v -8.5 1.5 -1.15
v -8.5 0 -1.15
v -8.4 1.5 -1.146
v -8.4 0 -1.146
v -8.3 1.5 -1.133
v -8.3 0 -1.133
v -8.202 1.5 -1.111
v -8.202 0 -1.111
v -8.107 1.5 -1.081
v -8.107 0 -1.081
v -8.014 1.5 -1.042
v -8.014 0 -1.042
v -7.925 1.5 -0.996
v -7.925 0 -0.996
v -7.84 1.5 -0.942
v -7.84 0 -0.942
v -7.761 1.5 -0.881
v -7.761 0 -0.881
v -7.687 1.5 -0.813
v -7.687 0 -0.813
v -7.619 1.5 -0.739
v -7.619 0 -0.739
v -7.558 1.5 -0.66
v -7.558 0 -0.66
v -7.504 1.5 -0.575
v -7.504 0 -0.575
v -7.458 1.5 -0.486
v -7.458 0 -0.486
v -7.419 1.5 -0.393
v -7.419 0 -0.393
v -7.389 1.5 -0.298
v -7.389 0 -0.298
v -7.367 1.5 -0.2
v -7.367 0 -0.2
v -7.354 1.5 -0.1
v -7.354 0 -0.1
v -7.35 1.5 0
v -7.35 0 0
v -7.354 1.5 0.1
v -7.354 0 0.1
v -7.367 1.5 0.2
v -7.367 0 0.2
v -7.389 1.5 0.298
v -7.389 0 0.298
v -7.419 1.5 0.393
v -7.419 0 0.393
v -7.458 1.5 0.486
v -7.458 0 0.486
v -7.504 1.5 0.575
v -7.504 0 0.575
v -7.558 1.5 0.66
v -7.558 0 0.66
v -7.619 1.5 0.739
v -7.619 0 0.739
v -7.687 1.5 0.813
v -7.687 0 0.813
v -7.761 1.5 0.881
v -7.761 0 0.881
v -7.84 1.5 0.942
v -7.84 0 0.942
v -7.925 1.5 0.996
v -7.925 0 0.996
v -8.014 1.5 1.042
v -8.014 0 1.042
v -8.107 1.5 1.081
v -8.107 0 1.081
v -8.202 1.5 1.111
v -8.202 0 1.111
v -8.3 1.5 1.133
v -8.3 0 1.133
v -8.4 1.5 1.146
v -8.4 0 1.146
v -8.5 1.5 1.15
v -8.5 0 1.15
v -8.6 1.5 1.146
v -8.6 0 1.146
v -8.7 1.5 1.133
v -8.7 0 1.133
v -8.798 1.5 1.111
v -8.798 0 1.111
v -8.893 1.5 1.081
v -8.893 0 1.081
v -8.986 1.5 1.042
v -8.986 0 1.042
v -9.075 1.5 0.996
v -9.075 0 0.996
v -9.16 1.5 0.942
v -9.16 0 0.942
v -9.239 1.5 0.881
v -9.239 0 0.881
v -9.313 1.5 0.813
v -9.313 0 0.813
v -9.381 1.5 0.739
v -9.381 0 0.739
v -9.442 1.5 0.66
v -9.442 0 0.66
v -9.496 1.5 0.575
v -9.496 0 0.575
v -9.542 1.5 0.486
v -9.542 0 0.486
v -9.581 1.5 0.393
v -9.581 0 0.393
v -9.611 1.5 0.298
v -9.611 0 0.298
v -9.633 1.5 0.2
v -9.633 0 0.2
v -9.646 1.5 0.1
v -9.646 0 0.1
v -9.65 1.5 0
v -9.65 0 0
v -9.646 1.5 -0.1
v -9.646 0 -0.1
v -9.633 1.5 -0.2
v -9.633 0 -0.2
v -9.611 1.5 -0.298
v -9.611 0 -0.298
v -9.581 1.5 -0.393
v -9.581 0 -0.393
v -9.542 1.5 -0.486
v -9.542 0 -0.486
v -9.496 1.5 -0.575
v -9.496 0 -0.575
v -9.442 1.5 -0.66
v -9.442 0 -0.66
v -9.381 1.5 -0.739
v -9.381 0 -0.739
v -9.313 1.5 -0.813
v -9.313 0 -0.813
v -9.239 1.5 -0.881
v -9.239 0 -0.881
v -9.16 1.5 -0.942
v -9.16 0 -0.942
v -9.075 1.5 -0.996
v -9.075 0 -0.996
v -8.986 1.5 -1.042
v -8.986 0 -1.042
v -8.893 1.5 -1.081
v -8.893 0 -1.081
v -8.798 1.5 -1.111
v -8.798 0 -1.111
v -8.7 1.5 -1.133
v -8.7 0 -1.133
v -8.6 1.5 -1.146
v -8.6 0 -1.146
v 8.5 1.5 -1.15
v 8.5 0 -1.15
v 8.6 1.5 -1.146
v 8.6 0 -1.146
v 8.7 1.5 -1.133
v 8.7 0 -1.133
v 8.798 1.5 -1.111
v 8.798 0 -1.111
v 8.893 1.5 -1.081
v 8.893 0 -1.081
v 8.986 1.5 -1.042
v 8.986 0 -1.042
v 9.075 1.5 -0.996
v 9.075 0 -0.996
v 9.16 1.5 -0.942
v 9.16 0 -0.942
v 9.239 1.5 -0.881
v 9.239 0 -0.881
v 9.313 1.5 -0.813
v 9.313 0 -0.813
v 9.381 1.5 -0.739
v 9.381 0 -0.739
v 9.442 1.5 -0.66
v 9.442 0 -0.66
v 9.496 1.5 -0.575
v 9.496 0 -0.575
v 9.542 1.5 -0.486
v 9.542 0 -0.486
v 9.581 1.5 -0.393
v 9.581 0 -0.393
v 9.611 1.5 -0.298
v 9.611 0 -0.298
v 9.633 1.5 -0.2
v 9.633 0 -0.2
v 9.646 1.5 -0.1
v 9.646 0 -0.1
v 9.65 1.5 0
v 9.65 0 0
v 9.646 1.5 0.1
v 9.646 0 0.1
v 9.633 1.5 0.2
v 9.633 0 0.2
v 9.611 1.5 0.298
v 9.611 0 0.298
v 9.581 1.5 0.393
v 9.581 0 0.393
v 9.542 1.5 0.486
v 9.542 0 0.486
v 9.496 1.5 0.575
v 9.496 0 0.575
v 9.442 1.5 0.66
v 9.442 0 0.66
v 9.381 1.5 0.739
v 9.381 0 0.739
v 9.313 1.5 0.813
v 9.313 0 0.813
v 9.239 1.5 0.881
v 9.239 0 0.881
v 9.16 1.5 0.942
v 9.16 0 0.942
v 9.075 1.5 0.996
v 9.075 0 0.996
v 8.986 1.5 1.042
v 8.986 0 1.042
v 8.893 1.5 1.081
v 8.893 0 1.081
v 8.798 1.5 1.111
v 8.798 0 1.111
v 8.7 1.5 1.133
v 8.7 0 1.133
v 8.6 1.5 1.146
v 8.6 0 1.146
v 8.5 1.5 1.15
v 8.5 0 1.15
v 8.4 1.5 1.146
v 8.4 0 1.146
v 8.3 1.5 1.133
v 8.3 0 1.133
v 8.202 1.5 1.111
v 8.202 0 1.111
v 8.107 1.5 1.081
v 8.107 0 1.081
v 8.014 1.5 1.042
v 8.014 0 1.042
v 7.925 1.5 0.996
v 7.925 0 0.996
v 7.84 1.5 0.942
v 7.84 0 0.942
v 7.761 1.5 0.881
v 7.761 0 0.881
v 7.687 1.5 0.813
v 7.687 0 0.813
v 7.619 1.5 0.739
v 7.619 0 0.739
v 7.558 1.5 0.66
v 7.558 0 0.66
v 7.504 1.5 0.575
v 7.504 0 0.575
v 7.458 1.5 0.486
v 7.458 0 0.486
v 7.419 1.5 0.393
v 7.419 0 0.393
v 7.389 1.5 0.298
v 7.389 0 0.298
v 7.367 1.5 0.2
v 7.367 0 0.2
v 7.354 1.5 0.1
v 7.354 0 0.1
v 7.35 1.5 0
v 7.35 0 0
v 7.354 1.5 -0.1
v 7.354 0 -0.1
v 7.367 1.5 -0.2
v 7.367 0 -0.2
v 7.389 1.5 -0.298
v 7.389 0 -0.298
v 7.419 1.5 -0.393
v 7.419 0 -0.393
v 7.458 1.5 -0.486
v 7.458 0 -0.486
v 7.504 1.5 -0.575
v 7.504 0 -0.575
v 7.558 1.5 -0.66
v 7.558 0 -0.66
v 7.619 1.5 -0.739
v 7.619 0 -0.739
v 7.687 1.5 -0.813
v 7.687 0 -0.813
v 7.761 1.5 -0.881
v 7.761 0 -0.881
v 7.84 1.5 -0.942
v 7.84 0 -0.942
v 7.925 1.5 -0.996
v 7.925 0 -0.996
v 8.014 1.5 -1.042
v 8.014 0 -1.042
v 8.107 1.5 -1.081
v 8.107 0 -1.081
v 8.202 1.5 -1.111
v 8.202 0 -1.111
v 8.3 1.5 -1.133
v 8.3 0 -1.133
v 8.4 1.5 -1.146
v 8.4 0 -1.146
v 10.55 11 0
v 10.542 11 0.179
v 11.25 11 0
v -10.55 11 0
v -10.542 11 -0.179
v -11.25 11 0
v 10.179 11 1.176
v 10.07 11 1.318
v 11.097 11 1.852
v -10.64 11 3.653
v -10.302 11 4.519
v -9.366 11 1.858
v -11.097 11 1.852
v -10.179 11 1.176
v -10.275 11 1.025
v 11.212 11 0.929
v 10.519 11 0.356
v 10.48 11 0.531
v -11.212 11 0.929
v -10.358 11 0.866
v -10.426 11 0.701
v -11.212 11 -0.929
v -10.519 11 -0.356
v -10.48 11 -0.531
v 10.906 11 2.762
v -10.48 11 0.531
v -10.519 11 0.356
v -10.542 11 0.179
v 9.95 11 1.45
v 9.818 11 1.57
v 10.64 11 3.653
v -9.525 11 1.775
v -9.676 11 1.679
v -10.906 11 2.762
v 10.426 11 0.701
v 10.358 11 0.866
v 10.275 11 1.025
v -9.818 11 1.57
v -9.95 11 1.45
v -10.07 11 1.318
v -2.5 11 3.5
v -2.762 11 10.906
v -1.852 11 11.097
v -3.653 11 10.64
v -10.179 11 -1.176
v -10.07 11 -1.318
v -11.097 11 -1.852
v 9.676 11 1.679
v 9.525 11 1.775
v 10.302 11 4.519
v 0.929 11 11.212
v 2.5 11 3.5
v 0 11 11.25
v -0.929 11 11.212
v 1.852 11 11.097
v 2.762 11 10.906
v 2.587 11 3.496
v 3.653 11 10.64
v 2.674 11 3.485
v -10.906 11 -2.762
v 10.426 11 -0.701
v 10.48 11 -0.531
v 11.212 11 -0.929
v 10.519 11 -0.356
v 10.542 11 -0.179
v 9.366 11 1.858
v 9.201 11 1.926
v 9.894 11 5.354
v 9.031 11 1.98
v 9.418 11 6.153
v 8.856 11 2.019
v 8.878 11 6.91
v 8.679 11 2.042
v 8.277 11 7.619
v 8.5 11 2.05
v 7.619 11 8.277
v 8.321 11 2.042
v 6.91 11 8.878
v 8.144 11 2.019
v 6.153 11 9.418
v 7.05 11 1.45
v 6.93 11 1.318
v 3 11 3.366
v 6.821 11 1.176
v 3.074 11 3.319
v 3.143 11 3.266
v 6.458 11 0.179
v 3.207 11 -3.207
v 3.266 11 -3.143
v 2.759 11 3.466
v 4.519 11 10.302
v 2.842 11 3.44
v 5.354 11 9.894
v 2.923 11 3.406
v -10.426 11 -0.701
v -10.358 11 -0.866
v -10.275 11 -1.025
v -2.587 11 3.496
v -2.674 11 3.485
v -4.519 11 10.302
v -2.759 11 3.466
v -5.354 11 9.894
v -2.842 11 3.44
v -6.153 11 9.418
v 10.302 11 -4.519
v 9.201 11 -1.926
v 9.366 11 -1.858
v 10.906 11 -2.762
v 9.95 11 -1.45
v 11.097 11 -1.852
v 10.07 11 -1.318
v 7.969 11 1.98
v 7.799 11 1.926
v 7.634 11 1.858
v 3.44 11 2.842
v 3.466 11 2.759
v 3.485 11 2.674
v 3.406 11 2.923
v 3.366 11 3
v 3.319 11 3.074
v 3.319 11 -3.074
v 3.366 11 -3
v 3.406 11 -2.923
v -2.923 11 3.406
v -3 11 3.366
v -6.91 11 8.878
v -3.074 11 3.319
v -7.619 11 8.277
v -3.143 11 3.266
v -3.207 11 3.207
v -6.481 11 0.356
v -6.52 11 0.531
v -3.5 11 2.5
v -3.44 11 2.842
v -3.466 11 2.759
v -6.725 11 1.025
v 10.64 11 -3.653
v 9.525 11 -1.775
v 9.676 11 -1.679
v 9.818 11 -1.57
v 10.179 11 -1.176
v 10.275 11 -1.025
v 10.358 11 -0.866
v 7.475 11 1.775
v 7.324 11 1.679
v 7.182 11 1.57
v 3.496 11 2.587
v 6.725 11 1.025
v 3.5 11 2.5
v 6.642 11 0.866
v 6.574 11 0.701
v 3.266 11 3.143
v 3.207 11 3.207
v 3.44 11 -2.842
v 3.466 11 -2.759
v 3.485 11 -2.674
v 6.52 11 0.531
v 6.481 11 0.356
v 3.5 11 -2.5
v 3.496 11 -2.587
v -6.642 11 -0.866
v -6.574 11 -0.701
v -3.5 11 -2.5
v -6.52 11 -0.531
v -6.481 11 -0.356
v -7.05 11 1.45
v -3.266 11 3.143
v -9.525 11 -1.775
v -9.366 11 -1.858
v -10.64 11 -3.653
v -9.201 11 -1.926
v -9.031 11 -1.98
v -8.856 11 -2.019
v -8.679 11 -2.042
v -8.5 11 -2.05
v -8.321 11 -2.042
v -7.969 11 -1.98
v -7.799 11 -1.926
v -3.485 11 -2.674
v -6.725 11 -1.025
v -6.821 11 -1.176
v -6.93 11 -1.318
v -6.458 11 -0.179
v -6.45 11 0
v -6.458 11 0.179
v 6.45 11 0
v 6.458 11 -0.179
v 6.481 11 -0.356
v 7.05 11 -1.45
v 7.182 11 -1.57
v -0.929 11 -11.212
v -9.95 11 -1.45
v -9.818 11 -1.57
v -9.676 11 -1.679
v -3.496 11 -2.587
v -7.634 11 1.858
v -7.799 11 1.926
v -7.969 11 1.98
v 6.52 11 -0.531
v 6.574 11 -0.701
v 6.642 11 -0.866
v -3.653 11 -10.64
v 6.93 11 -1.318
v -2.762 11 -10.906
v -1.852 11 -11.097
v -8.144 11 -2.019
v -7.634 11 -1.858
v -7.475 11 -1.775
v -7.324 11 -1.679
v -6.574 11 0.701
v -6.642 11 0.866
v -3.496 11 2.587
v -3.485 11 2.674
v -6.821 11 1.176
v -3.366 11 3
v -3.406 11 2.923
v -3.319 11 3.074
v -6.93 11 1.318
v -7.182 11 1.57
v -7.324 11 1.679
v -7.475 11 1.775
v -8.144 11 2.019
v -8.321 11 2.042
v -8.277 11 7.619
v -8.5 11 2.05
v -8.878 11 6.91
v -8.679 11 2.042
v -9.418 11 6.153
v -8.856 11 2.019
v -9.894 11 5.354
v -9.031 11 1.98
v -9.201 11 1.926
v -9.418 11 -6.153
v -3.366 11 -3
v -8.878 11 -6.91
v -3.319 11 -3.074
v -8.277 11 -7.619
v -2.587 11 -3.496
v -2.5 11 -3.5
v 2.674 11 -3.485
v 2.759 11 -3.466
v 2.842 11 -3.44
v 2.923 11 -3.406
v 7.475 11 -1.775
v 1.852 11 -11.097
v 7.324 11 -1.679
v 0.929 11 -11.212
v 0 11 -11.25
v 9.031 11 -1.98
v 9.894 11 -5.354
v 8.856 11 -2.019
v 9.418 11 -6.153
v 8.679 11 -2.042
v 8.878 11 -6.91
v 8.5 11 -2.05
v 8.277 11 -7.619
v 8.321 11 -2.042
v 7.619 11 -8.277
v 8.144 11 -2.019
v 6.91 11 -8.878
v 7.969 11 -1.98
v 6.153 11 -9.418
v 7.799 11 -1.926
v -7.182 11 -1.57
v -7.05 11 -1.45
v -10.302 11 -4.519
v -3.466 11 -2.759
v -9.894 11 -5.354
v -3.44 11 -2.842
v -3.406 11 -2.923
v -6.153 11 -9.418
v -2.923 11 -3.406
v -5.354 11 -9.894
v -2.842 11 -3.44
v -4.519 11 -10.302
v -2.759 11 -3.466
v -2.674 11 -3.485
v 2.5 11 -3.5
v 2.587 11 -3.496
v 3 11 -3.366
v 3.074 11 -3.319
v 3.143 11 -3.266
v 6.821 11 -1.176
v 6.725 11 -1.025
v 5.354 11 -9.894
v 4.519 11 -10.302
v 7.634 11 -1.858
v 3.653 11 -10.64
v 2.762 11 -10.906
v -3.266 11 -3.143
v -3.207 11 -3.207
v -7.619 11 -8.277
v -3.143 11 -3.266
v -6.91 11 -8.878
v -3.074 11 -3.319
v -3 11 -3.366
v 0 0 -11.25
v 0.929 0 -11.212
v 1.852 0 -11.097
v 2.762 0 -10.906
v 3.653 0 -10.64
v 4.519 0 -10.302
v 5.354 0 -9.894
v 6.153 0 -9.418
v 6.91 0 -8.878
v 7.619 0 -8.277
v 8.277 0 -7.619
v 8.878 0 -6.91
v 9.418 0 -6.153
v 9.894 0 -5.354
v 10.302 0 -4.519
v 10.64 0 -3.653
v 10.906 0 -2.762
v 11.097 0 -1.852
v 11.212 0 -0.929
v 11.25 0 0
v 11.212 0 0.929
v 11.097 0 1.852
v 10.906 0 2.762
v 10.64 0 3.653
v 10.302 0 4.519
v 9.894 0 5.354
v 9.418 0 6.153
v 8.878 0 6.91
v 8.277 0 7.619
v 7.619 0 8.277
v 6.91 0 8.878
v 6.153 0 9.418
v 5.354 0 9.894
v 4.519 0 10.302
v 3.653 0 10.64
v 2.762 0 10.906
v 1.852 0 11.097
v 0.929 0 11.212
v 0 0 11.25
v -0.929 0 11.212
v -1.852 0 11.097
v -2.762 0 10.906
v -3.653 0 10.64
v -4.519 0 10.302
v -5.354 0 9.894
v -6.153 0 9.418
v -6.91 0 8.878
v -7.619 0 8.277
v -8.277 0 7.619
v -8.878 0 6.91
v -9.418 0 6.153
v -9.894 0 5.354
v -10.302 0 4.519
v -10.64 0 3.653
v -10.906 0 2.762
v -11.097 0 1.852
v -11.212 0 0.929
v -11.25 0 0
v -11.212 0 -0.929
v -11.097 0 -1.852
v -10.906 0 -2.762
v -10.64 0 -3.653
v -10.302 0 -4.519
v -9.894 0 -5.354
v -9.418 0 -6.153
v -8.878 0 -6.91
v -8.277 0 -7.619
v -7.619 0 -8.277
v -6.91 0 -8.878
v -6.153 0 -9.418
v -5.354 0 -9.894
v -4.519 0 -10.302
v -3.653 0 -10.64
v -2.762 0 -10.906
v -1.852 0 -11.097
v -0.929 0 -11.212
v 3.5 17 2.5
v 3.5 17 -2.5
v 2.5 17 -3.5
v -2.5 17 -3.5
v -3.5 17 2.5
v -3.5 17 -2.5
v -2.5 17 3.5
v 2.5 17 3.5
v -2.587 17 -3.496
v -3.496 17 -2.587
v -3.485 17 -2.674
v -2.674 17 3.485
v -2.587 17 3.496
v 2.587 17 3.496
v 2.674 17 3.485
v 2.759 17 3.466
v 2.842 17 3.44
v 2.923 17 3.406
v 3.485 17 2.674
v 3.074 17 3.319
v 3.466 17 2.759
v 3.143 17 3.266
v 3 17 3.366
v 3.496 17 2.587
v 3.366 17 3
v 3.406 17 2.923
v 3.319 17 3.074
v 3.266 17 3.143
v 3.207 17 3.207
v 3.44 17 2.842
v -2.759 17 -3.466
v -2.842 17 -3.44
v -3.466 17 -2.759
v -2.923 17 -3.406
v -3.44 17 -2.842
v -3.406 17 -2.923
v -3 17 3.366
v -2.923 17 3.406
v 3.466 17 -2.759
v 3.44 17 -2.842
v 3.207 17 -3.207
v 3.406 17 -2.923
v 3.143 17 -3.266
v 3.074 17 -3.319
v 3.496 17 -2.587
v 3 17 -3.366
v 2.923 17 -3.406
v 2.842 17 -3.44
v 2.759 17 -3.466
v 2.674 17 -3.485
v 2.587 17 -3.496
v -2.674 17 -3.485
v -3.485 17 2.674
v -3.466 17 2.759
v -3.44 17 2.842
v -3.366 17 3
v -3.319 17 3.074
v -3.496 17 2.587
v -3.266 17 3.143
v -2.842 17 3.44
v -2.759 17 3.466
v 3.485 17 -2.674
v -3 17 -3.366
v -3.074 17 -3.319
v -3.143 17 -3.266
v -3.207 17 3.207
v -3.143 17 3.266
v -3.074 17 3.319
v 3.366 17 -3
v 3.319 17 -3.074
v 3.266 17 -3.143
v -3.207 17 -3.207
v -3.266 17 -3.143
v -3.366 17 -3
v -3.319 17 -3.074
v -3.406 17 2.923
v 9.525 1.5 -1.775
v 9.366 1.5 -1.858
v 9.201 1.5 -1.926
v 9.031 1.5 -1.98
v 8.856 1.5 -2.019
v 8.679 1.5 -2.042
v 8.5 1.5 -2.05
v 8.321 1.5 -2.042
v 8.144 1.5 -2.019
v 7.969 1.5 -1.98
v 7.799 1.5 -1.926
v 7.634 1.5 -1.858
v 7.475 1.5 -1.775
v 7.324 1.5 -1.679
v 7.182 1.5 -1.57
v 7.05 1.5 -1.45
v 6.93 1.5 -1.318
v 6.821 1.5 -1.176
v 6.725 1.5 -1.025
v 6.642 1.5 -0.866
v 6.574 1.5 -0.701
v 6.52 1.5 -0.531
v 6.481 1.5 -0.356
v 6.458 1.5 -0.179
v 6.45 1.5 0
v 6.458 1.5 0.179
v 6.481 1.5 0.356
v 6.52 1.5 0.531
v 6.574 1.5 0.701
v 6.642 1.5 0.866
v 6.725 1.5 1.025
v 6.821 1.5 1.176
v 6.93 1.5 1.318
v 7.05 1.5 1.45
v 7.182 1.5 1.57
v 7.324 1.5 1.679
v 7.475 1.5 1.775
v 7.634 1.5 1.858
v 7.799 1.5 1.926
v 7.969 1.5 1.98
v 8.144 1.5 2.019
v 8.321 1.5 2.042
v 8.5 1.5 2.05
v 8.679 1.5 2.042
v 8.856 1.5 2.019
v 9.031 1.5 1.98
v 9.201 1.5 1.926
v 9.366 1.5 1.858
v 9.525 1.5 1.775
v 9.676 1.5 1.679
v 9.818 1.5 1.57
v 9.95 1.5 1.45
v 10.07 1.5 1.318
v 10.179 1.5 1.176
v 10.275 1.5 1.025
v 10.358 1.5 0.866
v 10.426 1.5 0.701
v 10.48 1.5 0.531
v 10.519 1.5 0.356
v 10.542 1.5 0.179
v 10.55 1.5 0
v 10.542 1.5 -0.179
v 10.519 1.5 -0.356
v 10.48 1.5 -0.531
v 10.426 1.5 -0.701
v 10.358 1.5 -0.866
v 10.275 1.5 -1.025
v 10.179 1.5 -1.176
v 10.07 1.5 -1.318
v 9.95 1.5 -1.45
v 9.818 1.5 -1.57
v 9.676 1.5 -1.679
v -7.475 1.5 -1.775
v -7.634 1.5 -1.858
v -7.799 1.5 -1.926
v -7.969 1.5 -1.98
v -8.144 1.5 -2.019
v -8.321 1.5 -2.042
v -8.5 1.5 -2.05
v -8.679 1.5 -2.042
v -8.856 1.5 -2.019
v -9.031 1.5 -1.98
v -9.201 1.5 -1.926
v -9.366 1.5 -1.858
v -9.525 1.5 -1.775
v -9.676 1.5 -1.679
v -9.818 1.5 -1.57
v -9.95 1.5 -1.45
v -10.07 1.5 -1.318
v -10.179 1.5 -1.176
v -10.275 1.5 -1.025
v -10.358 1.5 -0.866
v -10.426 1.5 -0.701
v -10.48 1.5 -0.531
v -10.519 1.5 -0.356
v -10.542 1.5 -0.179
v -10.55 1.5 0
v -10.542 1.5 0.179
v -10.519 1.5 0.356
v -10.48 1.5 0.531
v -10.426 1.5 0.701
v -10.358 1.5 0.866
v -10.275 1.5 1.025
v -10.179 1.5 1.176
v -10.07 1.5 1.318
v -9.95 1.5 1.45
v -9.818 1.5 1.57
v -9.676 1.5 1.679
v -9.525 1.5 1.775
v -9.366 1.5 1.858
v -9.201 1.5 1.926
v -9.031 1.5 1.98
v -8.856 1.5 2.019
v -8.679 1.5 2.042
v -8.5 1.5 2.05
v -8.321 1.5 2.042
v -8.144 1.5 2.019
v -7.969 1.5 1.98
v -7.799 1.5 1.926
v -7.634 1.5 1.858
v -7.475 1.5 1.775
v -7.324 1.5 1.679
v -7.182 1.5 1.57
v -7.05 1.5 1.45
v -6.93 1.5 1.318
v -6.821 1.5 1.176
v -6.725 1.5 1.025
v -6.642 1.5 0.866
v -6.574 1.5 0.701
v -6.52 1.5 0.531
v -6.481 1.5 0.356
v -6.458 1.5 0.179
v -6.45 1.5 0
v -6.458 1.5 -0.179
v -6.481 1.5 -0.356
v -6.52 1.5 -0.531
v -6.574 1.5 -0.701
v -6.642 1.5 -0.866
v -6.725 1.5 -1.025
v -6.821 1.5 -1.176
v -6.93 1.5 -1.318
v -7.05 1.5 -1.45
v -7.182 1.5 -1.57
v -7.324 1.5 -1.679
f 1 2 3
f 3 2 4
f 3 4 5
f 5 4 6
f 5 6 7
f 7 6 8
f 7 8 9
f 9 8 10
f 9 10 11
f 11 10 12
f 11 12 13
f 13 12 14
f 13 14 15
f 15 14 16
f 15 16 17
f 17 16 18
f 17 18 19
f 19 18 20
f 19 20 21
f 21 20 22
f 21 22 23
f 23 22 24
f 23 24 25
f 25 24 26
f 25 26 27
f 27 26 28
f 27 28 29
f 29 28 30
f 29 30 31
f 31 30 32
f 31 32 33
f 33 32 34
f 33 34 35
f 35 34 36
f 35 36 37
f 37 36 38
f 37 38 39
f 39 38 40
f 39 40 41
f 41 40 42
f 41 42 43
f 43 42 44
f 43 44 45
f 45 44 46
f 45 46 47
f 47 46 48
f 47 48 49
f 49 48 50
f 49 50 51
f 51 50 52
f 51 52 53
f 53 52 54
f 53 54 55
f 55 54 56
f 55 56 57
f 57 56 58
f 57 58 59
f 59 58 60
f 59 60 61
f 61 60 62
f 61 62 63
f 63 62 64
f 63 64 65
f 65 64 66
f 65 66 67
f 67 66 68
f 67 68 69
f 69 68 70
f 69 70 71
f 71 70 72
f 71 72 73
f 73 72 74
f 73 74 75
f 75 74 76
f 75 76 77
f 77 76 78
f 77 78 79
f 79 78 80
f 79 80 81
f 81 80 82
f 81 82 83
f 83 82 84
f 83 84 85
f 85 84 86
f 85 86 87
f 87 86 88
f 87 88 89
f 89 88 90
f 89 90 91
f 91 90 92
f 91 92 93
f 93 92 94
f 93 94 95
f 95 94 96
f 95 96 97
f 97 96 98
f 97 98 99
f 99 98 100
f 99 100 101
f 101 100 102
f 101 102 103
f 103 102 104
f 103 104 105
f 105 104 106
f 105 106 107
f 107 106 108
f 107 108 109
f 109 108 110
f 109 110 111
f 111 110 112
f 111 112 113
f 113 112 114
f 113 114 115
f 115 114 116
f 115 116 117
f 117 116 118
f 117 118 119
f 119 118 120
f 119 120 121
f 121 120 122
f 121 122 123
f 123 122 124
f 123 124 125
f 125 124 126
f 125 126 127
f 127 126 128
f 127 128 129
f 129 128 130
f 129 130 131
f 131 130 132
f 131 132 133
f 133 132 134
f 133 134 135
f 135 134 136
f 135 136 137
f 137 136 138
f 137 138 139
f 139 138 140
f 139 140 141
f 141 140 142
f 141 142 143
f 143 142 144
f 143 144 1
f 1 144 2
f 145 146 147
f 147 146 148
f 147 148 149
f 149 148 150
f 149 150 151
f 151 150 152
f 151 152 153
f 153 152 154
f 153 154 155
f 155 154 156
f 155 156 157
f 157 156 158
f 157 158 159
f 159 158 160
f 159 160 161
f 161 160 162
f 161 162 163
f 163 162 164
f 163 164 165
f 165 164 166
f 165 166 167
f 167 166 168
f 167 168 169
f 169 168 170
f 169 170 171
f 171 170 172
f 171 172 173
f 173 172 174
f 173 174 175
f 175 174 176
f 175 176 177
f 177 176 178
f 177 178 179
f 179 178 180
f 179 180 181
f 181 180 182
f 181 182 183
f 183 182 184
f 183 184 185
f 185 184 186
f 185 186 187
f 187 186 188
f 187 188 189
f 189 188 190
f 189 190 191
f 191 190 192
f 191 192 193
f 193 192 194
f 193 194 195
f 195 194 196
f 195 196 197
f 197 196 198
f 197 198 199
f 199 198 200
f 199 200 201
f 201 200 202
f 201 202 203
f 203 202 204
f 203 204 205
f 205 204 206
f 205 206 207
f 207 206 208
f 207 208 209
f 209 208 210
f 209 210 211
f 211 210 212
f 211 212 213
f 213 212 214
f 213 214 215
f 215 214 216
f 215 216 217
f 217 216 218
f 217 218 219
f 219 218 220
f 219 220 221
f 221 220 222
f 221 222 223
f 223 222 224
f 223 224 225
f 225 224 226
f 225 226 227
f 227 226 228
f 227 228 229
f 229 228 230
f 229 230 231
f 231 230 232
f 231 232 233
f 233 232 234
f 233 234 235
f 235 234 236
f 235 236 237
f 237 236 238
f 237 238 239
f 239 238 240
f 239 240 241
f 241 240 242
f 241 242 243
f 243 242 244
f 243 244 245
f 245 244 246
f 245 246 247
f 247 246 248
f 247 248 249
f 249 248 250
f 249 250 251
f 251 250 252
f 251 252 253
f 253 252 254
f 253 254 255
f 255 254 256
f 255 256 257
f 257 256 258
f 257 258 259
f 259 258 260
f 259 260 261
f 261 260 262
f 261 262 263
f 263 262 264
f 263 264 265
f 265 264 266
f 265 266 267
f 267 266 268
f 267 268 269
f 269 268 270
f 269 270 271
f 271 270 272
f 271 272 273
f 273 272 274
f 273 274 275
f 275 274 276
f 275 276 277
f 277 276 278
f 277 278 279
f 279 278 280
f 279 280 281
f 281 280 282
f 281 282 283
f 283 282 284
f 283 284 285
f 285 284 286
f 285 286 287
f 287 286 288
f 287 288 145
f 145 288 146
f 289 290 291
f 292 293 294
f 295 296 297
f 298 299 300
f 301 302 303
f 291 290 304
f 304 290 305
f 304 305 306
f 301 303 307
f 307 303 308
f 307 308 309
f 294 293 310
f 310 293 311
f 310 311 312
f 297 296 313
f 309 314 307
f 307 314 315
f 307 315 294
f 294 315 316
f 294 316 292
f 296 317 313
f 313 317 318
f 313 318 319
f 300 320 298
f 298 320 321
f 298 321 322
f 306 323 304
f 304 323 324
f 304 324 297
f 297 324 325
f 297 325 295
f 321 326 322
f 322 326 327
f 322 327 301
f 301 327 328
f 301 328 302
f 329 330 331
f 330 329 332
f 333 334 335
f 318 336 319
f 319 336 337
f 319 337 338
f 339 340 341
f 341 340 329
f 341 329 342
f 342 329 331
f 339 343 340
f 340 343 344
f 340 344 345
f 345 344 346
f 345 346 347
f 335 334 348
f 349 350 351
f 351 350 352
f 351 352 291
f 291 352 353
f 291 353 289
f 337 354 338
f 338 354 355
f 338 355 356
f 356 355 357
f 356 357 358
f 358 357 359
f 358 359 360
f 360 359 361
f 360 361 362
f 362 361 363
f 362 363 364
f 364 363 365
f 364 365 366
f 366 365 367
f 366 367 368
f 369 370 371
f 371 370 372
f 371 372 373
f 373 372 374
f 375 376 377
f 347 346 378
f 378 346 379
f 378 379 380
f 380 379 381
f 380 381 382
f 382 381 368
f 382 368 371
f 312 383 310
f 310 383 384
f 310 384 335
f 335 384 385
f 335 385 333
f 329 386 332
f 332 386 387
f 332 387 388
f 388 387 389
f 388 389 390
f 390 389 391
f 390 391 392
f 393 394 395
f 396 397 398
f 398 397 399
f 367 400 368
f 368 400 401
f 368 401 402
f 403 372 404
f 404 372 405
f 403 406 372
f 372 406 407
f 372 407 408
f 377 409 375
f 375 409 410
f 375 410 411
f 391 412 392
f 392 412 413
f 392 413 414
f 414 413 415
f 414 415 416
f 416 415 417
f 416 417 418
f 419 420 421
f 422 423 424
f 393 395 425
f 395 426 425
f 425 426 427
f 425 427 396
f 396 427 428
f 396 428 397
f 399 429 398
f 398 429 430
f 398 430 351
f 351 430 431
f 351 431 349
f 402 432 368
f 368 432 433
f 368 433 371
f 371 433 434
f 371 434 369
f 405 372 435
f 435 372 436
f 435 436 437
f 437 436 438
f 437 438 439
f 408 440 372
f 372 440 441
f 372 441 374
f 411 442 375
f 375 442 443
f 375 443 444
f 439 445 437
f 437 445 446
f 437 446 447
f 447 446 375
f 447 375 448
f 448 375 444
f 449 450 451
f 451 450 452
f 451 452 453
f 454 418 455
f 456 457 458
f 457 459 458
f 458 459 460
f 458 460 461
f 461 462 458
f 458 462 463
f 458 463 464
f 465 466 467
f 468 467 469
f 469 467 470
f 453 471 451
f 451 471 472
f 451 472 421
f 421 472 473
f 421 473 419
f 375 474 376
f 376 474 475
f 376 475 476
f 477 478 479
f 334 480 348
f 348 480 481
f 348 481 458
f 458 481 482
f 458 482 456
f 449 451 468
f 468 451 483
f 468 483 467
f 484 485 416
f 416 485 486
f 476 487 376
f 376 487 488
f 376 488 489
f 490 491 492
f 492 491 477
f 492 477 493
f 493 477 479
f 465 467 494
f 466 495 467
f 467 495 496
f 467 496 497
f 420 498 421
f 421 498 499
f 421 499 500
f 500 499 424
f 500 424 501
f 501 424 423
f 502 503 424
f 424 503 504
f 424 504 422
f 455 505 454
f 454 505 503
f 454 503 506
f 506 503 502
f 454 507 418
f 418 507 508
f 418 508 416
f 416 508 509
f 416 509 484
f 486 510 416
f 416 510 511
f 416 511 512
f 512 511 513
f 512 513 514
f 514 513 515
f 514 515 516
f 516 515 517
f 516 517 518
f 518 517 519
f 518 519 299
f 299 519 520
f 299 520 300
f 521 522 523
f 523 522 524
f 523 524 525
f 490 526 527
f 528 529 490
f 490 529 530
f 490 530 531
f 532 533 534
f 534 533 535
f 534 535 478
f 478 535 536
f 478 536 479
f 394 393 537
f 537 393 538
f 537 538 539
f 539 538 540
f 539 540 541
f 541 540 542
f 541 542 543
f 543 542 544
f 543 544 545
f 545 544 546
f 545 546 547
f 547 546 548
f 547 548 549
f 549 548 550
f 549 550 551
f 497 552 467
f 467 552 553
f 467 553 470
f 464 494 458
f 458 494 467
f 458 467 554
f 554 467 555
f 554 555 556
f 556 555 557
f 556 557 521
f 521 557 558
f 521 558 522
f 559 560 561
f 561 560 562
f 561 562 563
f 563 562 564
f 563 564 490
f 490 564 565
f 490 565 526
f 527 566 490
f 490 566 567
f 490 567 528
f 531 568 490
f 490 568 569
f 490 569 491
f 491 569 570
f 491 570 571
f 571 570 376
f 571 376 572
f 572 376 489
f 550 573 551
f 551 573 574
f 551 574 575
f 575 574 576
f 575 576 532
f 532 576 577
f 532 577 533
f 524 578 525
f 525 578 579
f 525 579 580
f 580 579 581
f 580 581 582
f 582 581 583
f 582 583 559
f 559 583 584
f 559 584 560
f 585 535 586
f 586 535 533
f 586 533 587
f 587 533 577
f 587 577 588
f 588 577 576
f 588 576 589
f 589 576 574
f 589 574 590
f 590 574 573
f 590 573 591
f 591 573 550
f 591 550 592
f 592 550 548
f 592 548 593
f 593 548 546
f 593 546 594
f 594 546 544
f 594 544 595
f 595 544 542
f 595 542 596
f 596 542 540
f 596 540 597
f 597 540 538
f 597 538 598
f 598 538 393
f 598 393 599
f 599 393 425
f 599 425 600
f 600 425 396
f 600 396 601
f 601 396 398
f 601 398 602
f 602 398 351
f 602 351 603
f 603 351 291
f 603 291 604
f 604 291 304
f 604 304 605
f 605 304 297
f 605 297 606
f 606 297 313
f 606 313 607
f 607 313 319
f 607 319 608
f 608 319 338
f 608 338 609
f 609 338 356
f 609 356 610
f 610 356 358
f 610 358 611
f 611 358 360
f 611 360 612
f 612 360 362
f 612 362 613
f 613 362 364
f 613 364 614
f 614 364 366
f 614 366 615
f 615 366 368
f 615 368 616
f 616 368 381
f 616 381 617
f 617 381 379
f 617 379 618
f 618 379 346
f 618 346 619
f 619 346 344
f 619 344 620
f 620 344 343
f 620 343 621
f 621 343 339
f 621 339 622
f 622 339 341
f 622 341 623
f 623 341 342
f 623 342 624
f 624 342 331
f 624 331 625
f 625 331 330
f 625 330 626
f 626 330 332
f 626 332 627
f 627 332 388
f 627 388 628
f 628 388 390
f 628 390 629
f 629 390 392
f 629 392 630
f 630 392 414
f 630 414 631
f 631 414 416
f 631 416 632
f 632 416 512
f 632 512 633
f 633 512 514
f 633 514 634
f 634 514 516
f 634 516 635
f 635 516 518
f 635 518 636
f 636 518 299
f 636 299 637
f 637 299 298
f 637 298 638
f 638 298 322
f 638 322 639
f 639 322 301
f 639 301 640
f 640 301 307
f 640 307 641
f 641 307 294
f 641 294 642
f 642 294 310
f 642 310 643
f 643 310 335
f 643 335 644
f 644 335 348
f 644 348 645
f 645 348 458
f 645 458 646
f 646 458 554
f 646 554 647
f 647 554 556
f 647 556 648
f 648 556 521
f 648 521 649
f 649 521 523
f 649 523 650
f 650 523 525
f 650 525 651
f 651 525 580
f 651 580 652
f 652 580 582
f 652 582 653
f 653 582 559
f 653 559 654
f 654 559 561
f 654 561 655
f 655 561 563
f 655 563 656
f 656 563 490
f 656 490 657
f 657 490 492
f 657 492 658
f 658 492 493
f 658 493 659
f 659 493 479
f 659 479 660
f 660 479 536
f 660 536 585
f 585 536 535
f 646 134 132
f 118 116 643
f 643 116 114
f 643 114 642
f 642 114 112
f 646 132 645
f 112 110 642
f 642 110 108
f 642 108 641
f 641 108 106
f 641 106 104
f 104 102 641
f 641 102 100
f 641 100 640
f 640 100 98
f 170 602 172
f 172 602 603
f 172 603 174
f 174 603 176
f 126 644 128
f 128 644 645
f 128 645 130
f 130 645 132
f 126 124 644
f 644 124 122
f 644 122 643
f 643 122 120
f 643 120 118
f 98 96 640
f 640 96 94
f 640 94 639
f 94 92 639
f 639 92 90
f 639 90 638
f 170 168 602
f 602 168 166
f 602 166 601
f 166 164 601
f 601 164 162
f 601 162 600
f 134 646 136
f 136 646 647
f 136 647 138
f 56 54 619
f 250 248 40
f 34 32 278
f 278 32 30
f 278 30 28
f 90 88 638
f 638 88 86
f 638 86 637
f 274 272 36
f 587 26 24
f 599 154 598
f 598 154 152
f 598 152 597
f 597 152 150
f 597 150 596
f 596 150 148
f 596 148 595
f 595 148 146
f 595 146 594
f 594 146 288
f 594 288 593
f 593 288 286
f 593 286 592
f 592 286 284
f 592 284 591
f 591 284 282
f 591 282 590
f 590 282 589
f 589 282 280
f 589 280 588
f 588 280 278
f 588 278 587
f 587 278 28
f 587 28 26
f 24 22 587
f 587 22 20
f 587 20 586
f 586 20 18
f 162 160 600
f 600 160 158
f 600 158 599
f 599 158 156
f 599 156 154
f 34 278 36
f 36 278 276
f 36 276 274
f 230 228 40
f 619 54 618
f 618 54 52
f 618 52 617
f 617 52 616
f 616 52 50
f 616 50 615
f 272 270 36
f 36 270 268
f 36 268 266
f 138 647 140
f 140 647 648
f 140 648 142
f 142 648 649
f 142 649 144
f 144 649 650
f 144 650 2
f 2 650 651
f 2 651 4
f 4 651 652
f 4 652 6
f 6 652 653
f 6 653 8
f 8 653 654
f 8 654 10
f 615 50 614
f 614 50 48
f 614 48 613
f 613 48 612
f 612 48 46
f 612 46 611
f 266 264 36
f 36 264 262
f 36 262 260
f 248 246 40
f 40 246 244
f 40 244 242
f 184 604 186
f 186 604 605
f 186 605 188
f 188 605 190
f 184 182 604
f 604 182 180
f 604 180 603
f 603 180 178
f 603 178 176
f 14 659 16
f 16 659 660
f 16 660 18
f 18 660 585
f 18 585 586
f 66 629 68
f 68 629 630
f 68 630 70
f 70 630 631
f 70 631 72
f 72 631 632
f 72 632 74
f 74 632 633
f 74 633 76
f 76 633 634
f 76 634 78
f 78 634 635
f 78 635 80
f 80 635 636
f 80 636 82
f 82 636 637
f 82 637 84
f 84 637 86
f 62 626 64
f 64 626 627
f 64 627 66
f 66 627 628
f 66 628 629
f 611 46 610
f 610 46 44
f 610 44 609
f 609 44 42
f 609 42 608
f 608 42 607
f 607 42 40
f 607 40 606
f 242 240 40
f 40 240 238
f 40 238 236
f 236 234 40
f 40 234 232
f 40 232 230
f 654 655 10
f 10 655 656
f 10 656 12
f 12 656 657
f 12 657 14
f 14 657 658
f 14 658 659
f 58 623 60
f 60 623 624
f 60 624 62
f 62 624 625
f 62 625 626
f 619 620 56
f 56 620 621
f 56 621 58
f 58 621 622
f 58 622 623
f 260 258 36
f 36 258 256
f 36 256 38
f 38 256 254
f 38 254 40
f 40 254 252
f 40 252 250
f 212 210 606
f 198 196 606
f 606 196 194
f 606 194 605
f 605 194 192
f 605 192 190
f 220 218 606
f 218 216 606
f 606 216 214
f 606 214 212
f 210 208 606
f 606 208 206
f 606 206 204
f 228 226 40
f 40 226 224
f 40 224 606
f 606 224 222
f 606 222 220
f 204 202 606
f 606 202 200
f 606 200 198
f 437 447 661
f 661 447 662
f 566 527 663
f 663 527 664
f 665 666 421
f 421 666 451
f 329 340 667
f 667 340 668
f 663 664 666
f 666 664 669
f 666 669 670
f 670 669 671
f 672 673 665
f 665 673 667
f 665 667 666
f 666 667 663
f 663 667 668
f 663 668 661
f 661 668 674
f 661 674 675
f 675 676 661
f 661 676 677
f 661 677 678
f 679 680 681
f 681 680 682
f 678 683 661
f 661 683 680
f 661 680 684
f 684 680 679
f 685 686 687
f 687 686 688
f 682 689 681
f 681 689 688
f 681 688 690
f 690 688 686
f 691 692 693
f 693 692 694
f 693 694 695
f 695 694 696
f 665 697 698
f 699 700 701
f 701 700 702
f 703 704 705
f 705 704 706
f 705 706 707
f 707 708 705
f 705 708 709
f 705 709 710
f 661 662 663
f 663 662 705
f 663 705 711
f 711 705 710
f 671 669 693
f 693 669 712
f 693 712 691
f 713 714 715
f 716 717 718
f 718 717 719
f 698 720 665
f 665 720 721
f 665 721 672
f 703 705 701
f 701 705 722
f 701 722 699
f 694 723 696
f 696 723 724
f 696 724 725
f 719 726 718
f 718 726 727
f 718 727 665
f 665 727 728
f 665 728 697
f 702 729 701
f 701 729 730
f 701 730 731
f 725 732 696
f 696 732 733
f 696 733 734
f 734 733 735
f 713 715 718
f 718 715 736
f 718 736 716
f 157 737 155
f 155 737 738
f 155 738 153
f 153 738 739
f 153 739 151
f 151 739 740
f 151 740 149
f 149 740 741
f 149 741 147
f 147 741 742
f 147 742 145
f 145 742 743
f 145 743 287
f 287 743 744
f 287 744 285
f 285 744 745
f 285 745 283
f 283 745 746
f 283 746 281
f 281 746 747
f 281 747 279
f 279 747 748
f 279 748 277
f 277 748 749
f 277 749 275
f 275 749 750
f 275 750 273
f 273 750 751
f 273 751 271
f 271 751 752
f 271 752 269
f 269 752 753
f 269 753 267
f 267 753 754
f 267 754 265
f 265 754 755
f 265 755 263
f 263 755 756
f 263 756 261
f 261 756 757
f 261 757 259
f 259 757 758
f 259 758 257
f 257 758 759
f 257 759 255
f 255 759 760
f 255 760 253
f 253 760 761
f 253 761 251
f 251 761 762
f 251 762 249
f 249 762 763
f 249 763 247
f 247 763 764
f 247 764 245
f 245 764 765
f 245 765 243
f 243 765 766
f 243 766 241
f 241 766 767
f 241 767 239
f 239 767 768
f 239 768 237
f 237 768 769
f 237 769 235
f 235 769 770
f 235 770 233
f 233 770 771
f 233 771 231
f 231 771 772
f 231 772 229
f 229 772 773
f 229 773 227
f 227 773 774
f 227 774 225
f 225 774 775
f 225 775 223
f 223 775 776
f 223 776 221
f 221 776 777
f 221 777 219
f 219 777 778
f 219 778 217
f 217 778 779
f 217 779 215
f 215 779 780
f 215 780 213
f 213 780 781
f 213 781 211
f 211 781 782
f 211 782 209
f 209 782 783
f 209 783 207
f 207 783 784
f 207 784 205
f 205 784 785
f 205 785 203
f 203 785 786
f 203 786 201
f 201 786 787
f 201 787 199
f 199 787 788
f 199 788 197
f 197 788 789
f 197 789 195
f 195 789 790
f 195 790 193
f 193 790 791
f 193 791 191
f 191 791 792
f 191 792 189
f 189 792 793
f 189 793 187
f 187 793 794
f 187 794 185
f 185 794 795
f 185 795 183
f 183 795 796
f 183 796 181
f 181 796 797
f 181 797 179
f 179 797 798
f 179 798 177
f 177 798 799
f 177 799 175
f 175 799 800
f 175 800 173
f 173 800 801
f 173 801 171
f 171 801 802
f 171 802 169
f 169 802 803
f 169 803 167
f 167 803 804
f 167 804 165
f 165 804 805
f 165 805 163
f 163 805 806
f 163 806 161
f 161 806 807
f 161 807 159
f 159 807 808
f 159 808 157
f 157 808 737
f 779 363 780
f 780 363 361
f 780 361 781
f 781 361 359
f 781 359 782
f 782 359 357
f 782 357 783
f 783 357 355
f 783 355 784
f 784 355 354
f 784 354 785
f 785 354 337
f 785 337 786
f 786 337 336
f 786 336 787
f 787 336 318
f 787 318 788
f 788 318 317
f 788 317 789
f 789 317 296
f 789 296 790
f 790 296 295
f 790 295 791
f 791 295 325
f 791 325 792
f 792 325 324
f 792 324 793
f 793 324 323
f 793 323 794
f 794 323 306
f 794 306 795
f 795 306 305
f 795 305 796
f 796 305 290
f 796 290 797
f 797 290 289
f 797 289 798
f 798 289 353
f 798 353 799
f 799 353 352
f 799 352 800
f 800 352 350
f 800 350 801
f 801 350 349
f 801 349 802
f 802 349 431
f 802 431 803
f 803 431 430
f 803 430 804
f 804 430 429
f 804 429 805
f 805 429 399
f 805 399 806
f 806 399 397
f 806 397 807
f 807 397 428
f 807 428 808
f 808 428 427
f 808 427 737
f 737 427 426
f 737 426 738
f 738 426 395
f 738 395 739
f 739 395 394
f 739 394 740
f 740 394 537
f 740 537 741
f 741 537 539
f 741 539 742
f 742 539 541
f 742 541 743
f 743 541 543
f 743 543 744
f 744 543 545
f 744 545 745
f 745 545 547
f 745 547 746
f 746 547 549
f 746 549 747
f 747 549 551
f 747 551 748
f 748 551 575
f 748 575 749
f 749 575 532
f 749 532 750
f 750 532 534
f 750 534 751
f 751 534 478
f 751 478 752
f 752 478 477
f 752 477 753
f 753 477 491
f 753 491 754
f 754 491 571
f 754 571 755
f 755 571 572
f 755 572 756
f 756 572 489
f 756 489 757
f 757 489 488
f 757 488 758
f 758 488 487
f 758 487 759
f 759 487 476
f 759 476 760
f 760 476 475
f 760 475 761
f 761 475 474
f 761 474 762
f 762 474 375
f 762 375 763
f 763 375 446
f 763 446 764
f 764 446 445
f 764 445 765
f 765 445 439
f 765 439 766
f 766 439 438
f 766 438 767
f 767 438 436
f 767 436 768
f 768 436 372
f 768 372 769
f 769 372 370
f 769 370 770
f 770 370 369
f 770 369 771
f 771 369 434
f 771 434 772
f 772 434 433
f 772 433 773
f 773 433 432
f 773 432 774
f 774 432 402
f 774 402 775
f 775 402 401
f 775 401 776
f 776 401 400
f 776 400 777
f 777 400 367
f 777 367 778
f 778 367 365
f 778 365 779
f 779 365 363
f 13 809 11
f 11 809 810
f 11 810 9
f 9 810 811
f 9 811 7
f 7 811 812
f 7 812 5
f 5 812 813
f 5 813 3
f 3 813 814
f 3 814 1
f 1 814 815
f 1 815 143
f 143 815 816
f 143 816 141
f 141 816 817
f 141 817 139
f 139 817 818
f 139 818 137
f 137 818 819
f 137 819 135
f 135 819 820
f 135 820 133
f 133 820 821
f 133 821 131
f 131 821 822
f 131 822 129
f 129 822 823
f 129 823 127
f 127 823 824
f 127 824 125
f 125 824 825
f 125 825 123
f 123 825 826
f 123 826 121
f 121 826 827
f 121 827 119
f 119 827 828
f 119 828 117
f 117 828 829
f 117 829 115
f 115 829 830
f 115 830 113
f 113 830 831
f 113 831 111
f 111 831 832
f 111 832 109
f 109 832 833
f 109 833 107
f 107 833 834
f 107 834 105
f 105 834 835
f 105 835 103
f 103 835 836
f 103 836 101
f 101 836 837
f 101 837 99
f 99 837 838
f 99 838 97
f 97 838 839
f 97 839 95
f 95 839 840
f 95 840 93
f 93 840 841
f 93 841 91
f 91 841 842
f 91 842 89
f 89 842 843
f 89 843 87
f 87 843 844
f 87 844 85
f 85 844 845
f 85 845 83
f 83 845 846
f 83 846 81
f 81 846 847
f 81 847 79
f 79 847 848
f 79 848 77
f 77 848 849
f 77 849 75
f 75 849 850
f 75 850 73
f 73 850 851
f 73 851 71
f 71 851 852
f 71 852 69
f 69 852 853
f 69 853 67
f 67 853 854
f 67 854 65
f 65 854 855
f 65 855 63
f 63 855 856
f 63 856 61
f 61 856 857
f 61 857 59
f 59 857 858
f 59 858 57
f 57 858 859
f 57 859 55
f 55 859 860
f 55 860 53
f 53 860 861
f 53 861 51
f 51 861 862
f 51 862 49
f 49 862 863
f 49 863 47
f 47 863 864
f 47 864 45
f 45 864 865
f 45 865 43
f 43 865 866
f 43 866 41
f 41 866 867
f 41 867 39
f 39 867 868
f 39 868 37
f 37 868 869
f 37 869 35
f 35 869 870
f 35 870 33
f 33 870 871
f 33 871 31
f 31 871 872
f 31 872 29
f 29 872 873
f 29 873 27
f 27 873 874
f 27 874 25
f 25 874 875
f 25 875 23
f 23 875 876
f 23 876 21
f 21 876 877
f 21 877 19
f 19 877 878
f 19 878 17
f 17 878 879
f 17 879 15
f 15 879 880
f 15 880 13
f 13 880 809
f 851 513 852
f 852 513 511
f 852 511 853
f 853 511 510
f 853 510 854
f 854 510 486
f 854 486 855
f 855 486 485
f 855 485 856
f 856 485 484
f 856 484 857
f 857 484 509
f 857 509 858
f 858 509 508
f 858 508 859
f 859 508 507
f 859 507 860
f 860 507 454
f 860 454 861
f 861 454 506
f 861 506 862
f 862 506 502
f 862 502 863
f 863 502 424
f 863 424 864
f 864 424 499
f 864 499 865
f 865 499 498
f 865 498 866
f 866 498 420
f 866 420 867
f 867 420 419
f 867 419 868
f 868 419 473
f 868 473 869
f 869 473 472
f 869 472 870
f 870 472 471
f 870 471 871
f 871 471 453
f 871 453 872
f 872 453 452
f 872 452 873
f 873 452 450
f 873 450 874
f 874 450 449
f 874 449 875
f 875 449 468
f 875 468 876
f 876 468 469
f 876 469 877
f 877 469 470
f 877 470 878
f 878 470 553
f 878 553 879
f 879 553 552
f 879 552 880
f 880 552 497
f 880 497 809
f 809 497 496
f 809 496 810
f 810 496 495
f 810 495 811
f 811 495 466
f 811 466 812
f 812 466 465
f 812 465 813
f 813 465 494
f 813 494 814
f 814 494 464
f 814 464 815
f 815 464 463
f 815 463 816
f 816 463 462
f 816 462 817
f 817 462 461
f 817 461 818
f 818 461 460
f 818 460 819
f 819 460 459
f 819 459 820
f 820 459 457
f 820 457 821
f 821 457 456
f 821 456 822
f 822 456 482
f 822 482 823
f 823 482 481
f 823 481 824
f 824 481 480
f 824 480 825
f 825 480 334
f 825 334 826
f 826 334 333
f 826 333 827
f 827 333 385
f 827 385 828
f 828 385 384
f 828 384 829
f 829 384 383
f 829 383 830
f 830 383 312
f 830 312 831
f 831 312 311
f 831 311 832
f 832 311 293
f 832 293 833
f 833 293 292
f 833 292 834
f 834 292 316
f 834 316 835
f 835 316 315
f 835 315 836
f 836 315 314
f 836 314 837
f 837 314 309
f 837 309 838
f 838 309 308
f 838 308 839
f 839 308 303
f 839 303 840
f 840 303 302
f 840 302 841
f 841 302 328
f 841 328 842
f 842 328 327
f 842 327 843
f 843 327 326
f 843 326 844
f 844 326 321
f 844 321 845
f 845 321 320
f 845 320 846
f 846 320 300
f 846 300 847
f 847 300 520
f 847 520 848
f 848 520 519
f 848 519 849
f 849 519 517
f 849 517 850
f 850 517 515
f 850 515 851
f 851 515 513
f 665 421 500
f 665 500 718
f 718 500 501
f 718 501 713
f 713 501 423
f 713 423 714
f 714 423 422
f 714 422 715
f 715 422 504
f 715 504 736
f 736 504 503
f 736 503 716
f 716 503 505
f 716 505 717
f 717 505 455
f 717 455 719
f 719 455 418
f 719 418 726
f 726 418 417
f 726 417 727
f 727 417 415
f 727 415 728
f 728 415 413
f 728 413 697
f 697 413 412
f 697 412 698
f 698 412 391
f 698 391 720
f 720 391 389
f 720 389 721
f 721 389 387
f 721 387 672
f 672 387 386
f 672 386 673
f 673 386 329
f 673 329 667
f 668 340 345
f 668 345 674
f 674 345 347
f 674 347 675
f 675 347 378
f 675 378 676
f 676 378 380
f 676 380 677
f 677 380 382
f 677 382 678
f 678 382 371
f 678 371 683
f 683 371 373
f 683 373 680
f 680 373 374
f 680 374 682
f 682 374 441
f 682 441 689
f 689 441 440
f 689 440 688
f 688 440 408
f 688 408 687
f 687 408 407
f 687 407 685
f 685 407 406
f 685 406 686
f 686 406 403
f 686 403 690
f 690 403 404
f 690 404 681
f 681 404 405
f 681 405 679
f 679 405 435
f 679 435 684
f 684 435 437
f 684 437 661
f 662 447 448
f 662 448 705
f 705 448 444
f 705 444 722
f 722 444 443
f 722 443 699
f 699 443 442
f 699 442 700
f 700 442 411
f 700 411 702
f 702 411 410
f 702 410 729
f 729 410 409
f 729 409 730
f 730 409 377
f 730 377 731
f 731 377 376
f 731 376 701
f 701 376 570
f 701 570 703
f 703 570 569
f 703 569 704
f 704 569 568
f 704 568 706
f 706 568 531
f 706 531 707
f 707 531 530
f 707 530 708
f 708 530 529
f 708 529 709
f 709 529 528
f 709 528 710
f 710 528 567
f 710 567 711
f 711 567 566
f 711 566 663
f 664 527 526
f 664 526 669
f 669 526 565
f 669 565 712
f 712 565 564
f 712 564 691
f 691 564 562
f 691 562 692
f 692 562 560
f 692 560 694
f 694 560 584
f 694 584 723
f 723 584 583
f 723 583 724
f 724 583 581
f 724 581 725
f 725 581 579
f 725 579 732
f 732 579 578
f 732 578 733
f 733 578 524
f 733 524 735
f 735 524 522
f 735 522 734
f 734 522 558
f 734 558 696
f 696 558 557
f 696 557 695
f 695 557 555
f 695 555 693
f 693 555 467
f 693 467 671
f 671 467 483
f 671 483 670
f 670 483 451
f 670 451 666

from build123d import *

# Parameters (mm, degrees)
SKETCH_1_R          = 11.25
EXTRUDE_1_DEPTH     = 11
SKETCH_2_R          = 1.15
CUT_EXTRUDE_1_DEPTH = 20.342311134
SKETCH_4_W          = 7
SKETCH_4_H          = 7
EXTRUDE_3_DEPTH     = 6
SKETCH_5_R          = 2.05
CUT_EXTRUDE_2_DEPTH = 9.5
FILLET_1_R          = 1


with BuildPart() as part:
    # 草图1 → 凸台-拉伸1 (new body)
    with BuildSketch(Plane(origin=(0, 0, 0), x_dir=(1, 0, 0), z_dir=(0, 1, 0))):
        with Locations(Location((0, 0, 0), (0, 0, 270))):
            Circle(SKETCH_1_R)
    extrude(amount=EXTRUDE_1_DEPTH)

    # 草图2 → 切除-拉伸1 (cut, through all)
    with BuildSketch(Plane.XZ):
        with Locations(Location((8.5, 0, 0), (0, 0, 270))):
            Circle(SKETCH_2_R)
        with Locations(Location((-8.5, 0, 0), (0, 0, 90))):
            Circle(SKETCH_2_R)
    extrude(amount=-CUT_EXTRUDE_1_DEPTH, mode=Mode.SUBTRACT)

    # 草图4 → 凸台-拉伸3 (add)
    with BuildSketch(Plane(origin=(0, 11, 0), x_dir=(1, 0, 0), z_dir=(0, 1, 0))):
        Rectangle(SKETCH_4_W, SKETCH_4_H)
    extrude(amount=EXTRUDE_3_DEPTH)

    # 草图5 → 切除-拉伸2 (cut)
    with BuildSketch(Plane(origin=(0, 11, 0), x_dir=(1, 0, 0), z_dir=(0, 1, 0))):
        with Locations(Location((8.5, 0, 0), (0, 0, 270))):
            Circle(SKETCH_5_R)
        with Locations(Location((-8.5, 0, 0), (0, 0, 270))):
            Circle(SKETCH_5_R)
    extrude(amount=-CUT_EXTRUDE_2_DEPTH, mode=Mode.SUBTRACT)

    # 圆角1
    fillet_1_edges = [part.edges().sort_by_distance(p)[0] for p in [
        (3.5, 14, 3.5),
        (3.5, 14, -3.5),
        (-3.5, 14, -3.5),
        (-3.5, 14, 3.5),
    ]]
    fillet(fillet_1_edges, radius=FILLET_1_R)


solid = part.part
